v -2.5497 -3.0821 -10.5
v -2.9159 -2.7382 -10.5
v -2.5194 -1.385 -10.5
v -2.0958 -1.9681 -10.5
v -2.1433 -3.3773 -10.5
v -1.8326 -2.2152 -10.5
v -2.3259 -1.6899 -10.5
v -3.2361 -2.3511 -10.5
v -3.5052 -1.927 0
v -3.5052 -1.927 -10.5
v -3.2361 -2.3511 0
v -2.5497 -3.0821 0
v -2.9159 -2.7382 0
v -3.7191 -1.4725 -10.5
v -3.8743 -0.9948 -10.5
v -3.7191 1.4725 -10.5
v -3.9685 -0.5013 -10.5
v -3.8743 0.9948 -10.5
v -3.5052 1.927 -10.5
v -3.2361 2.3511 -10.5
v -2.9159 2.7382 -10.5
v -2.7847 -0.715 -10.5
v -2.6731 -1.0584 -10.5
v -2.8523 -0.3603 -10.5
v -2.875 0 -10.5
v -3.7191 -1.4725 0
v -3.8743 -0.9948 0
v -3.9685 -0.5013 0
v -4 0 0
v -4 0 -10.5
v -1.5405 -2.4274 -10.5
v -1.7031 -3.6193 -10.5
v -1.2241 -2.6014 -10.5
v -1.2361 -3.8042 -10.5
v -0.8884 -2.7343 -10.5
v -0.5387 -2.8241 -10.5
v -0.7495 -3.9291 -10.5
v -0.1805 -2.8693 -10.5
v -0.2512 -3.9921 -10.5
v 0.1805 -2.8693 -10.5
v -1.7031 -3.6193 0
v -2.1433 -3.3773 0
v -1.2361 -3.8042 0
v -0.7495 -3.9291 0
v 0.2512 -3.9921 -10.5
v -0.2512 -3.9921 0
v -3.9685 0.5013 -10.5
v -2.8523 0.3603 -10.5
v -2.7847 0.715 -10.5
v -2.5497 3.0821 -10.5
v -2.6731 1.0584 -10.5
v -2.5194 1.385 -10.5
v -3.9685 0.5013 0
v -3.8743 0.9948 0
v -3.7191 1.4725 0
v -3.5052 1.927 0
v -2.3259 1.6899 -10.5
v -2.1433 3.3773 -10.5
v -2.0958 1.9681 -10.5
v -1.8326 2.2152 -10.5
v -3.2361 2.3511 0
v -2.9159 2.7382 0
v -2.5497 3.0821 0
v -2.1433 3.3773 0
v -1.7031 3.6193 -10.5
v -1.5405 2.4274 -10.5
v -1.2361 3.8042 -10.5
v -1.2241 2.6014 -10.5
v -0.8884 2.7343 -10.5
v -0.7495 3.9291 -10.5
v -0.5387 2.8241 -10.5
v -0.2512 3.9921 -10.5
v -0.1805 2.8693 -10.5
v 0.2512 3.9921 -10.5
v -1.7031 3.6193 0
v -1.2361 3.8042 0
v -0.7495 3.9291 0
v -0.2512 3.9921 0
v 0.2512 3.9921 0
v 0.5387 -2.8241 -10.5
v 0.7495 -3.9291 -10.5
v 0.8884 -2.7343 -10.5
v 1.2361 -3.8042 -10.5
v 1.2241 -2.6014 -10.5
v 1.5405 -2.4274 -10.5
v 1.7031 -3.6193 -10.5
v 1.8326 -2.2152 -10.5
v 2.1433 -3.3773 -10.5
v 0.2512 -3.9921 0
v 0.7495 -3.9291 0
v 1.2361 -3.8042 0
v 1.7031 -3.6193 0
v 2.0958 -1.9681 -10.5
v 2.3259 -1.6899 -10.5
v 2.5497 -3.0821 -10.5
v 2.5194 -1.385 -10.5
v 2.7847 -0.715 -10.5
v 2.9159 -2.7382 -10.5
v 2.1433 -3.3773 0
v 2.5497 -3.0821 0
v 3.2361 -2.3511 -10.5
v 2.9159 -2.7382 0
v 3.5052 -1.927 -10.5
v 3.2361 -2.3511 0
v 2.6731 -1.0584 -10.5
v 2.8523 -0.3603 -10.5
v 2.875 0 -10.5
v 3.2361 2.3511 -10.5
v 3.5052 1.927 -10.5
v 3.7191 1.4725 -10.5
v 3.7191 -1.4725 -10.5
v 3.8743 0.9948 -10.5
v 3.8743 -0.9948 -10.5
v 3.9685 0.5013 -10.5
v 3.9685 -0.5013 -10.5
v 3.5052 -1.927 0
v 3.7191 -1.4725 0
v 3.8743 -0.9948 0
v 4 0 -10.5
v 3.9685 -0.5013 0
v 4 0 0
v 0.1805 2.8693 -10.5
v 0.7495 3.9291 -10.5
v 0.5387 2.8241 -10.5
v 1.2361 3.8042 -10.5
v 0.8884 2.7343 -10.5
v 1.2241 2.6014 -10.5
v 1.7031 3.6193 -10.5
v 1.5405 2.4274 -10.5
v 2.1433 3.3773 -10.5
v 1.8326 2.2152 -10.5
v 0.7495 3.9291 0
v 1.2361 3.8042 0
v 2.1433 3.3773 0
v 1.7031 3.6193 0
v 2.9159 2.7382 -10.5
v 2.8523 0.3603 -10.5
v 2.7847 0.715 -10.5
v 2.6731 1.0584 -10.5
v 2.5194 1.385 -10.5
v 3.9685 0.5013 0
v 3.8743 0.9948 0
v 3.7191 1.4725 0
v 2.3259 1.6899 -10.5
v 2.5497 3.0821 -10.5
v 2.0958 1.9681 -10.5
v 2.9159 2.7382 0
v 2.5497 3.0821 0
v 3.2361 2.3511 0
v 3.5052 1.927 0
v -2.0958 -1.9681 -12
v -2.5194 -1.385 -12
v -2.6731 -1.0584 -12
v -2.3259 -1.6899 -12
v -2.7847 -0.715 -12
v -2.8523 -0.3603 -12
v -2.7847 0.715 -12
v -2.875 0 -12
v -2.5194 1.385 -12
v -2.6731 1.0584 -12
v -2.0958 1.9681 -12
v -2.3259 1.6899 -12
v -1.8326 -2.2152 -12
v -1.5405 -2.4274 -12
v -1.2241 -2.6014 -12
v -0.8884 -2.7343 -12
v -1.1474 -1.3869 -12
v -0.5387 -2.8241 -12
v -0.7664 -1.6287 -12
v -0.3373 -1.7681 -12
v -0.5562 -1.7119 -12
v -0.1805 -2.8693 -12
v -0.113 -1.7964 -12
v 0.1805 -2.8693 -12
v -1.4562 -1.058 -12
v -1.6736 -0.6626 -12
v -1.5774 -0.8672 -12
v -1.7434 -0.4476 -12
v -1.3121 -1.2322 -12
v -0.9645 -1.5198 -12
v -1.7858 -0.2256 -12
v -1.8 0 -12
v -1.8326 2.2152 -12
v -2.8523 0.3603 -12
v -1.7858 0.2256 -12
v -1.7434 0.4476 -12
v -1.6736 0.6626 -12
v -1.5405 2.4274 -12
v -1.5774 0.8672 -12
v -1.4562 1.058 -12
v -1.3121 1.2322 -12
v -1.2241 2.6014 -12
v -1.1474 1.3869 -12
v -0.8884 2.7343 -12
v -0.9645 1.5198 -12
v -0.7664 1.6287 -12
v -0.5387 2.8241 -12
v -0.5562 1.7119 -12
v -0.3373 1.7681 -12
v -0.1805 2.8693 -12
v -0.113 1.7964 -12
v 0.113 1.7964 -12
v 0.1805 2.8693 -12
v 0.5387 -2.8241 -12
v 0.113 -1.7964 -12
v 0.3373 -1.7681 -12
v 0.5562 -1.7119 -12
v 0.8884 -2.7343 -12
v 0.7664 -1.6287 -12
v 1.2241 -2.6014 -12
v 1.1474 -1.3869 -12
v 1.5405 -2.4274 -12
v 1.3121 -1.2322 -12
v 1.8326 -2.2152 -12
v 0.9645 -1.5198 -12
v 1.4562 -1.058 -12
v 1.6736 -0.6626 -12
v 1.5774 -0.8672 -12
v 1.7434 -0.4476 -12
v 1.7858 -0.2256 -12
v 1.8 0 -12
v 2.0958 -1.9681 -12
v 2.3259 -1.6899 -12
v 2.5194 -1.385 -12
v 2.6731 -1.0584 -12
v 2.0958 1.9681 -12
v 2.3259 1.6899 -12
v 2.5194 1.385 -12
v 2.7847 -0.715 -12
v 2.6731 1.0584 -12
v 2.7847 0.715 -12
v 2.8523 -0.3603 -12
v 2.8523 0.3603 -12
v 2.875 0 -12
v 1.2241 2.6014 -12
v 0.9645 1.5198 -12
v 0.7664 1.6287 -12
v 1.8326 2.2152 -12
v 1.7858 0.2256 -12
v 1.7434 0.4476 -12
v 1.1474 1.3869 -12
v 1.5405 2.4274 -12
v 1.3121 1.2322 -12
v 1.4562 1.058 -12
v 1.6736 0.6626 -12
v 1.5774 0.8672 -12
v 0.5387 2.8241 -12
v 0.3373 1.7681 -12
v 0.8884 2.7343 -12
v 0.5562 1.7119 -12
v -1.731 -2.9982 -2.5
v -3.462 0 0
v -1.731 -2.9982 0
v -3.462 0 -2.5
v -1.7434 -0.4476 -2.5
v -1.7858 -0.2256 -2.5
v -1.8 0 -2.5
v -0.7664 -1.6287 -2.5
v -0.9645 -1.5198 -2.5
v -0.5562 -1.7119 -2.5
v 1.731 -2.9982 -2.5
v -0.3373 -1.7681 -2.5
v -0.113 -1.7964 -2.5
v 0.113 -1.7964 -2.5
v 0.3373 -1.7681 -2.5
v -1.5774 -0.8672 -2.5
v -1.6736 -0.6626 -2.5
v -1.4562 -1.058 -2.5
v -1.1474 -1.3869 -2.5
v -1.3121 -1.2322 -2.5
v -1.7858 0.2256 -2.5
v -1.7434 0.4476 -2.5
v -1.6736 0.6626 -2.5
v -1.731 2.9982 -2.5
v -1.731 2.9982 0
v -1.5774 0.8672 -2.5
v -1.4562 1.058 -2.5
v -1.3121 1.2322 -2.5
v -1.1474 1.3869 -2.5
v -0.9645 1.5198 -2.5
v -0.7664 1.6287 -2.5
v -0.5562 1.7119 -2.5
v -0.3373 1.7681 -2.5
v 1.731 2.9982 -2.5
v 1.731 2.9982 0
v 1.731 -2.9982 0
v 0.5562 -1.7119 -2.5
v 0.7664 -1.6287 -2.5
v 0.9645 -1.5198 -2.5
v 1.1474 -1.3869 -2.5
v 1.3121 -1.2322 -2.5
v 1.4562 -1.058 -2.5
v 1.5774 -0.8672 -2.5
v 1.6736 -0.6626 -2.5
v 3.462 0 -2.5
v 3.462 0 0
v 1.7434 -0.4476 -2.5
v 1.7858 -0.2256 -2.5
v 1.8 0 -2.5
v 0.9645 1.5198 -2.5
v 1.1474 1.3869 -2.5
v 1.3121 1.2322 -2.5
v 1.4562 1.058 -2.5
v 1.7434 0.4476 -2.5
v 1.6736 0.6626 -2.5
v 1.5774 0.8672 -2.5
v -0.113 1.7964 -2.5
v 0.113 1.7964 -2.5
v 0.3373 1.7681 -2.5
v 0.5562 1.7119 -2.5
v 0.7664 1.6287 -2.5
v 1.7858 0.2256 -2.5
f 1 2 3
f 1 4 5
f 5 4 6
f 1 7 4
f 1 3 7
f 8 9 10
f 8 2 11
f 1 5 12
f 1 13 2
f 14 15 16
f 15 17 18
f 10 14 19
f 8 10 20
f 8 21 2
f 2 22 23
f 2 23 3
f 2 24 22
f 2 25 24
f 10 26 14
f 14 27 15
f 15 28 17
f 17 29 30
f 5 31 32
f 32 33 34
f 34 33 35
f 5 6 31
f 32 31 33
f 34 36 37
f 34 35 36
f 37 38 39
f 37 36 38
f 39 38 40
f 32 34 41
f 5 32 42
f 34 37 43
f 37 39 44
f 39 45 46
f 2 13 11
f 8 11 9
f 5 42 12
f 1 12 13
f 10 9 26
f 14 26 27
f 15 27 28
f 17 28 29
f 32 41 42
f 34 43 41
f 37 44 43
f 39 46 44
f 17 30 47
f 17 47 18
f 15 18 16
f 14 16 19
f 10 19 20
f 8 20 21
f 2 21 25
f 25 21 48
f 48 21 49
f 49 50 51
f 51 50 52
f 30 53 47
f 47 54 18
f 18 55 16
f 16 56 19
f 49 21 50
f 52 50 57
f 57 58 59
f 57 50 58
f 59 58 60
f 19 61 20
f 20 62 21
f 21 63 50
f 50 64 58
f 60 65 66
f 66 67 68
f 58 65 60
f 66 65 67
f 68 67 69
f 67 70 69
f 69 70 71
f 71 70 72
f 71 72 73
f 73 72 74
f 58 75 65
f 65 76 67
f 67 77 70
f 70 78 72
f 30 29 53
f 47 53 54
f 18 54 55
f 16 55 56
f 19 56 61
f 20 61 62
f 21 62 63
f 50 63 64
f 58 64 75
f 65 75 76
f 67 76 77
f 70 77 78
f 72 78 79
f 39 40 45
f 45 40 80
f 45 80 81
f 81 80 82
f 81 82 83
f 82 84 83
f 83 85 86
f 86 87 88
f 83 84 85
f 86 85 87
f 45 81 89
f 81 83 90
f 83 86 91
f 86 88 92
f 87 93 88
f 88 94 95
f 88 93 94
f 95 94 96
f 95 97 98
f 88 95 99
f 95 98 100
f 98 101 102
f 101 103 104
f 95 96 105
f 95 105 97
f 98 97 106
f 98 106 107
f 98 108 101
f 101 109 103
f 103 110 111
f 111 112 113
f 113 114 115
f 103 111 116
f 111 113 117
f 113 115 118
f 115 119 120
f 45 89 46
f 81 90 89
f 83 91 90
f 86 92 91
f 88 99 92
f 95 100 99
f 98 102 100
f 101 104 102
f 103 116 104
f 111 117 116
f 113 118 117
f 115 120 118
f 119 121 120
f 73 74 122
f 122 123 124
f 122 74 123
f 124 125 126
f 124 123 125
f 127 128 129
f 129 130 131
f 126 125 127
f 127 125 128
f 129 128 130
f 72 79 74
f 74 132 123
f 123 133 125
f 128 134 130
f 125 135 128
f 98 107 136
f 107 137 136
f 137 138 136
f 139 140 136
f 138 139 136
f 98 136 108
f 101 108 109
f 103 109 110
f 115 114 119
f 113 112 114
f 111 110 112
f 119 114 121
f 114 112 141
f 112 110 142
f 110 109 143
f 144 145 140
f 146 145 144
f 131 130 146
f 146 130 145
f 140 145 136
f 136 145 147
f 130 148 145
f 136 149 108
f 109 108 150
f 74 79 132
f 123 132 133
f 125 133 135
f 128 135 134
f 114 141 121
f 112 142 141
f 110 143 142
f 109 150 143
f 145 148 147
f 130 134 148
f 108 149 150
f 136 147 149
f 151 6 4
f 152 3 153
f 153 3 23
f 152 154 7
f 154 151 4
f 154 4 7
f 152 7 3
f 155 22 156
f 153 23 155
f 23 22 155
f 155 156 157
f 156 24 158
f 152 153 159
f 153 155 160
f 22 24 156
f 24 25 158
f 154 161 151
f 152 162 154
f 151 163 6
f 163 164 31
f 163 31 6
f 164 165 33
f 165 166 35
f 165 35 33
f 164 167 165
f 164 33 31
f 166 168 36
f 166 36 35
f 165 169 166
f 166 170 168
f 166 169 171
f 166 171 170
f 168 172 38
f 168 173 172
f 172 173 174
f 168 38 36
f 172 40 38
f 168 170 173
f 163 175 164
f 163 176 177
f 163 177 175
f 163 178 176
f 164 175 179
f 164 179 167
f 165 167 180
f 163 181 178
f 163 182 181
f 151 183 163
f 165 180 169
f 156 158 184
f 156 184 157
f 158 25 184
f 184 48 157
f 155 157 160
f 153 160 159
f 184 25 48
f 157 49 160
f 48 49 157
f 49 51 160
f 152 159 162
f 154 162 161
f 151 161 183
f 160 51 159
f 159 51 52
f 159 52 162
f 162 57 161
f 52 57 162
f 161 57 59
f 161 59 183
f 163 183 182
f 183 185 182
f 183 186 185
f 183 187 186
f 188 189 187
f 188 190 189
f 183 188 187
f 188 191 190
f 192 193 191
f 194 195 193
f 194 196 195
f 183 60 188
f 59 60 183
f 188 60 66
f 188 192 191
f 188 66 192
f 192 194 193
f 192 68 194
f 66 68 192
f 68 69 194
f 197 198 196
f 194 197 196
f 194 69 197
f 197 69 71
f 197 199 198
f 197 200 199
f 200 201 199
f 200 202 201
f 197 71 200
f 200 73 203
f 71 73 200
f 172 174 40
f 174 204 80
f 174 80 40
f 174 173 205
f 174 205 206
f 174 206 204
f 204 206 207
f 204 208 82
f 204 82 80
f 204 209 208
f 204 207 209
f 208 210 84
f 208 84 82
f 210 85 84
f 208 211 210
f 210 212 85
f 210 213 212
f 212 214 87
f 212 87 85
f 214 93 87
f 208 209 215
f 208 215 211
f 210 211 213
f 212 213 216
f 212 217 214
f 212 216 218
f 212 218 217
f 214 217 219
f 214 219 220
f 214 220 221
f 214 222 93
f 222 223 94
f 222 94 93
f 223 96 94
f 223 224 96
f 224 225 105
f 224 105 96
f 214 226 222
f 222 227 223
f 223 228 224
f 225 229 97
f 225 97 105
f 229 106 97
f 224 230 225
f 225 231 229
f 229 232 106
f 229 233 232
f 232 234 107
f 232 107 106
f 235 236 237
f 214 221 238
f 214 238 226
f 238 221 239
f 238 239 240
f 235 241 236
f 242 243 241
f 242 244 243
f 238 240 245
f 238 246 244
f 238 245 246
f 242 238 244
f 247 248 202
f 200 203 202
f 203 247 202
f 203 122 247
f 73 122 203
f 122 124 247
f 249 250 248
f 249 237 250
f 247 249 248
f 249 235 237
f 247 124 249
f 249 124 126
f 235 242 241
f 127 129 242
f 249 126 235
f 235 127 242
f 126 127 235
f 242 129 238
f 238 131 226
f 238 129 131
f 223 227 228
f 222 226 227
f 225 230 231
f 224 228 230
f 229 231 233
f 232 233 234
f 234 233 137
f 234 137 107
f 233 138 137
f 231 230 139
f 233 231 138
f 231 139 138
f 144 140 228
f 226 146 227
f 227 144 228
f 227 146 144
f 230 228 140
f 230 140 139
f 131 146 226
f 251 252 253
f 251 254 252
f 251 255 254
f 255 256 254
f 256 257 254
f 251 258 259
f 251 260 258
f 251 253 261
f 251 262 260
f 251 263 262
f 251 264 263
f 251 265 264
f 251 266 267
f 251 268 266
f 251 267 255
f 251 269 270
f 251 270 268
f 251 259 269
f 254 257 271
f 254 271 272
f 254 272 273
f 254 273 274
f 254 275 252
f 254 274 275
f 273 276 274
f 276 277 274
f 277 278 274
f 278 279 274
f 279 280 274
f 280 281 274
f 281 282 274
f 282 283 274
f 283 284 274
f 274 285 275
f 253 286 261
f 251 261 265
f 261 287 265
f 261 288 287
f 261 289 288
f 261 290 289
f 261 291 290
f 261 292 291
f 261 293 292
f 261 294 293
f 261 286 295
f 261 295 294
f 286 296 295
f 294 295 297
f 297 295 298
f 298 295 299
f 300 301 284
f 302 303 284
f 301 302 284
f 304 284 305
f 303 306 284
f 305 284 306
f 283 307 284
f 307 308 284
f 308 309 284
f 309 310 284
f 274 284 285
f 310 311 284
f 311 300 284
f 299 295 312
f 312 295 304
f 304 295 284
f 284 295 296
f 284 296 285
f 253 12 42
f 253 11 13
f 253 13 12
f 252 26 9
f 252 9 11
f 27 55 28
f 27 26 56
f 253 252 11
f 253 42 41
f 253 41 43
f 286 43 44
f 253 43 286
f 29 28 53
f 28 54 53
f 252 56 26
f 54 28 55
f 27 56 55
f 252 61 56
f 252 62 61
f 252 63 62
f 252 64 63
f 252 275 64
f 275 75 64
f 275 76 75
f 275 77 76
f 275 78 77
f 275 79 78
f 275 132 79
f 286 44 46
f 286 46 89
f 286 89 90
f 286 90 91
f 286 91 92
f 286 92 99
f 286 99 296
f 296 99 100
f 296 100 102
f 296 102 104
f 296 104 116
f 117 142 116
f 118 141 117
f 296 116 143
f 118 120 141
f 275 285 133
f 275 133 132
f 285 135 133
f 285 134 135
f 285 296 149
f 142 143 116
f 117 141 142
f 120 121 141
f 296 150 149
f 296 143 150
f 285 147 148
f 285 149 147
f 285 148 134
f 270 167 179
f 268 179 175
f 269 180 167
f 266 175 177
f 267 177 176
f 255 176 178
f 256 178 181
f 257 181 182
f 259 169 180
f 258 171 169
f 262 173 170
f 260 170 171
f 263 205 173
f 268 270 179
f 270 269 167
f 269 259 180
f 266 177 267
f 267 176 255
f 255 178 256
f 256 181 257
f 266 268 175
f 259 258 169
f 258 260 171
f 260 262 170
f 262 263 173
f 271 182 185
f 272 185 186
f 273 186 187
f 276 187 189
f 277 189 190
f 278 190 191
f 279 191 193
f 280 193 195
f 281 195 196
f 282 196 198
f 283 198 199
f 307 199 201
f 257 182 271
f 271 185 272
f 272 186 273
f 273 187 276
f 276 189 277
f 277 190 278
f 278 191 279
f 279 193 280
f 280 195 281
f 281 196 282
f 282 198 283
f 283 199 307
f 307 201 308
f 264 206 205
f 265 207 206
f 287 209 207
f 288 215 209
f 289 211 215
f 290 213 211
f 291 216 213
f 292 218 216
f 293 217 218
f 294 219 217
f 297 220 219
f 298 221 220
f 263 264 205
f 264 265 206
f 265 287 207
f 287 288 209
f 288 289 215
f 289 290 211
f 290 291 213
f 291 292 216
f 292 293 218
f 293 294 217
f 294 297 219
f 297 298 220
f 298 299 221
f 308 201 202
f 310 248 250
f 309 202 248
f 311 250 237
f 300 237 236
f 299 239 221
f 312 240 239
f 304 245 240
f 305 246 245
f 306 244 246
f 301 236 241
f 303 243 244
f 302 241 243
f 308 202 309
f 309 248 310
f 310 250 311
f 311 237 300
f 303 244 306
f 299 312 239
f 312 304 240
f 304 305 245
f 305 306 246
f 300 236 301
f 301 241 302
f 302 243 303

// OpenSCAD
$fn = 50;

difference() {
	union() {
		translate(v = [0, 0, -10.5]) {
			cylinder(h = 13.5, r = 4.0);
		}
		#translate(v = [0, 0, -12.0]) {
			cylinder(h = 12, r = 2.875);
		}
	}
	union() {
		translate(v = [0, 0, 0]) {
			rotate(a = [0, 0, 0]) {
				difference() {
					union() {
						translate(v = [0, 0, -2.5]) {
							linear_extrude(height = 2.5) {
								polygon(points = [[3.4619999999999997, 0.0], [1.7310000000000003, 2.9981799479017264], [-1.7309999999999992, 2.9981799479017264], [-3.4619999999999997, 4.2397272186481365e-16], [-1.7310000000000014, -2.998179947901726], [1.7309999999999977, -2.9981799479017277]]);
							}
						}
					}
					union();
				}
			}
		}
		#cylinder(h = 3, r = 5.0);
		#translate(v = [0, 0, -100.0]) {
			cylinder(h = 200, r = 1.8);
		}
	}
}
